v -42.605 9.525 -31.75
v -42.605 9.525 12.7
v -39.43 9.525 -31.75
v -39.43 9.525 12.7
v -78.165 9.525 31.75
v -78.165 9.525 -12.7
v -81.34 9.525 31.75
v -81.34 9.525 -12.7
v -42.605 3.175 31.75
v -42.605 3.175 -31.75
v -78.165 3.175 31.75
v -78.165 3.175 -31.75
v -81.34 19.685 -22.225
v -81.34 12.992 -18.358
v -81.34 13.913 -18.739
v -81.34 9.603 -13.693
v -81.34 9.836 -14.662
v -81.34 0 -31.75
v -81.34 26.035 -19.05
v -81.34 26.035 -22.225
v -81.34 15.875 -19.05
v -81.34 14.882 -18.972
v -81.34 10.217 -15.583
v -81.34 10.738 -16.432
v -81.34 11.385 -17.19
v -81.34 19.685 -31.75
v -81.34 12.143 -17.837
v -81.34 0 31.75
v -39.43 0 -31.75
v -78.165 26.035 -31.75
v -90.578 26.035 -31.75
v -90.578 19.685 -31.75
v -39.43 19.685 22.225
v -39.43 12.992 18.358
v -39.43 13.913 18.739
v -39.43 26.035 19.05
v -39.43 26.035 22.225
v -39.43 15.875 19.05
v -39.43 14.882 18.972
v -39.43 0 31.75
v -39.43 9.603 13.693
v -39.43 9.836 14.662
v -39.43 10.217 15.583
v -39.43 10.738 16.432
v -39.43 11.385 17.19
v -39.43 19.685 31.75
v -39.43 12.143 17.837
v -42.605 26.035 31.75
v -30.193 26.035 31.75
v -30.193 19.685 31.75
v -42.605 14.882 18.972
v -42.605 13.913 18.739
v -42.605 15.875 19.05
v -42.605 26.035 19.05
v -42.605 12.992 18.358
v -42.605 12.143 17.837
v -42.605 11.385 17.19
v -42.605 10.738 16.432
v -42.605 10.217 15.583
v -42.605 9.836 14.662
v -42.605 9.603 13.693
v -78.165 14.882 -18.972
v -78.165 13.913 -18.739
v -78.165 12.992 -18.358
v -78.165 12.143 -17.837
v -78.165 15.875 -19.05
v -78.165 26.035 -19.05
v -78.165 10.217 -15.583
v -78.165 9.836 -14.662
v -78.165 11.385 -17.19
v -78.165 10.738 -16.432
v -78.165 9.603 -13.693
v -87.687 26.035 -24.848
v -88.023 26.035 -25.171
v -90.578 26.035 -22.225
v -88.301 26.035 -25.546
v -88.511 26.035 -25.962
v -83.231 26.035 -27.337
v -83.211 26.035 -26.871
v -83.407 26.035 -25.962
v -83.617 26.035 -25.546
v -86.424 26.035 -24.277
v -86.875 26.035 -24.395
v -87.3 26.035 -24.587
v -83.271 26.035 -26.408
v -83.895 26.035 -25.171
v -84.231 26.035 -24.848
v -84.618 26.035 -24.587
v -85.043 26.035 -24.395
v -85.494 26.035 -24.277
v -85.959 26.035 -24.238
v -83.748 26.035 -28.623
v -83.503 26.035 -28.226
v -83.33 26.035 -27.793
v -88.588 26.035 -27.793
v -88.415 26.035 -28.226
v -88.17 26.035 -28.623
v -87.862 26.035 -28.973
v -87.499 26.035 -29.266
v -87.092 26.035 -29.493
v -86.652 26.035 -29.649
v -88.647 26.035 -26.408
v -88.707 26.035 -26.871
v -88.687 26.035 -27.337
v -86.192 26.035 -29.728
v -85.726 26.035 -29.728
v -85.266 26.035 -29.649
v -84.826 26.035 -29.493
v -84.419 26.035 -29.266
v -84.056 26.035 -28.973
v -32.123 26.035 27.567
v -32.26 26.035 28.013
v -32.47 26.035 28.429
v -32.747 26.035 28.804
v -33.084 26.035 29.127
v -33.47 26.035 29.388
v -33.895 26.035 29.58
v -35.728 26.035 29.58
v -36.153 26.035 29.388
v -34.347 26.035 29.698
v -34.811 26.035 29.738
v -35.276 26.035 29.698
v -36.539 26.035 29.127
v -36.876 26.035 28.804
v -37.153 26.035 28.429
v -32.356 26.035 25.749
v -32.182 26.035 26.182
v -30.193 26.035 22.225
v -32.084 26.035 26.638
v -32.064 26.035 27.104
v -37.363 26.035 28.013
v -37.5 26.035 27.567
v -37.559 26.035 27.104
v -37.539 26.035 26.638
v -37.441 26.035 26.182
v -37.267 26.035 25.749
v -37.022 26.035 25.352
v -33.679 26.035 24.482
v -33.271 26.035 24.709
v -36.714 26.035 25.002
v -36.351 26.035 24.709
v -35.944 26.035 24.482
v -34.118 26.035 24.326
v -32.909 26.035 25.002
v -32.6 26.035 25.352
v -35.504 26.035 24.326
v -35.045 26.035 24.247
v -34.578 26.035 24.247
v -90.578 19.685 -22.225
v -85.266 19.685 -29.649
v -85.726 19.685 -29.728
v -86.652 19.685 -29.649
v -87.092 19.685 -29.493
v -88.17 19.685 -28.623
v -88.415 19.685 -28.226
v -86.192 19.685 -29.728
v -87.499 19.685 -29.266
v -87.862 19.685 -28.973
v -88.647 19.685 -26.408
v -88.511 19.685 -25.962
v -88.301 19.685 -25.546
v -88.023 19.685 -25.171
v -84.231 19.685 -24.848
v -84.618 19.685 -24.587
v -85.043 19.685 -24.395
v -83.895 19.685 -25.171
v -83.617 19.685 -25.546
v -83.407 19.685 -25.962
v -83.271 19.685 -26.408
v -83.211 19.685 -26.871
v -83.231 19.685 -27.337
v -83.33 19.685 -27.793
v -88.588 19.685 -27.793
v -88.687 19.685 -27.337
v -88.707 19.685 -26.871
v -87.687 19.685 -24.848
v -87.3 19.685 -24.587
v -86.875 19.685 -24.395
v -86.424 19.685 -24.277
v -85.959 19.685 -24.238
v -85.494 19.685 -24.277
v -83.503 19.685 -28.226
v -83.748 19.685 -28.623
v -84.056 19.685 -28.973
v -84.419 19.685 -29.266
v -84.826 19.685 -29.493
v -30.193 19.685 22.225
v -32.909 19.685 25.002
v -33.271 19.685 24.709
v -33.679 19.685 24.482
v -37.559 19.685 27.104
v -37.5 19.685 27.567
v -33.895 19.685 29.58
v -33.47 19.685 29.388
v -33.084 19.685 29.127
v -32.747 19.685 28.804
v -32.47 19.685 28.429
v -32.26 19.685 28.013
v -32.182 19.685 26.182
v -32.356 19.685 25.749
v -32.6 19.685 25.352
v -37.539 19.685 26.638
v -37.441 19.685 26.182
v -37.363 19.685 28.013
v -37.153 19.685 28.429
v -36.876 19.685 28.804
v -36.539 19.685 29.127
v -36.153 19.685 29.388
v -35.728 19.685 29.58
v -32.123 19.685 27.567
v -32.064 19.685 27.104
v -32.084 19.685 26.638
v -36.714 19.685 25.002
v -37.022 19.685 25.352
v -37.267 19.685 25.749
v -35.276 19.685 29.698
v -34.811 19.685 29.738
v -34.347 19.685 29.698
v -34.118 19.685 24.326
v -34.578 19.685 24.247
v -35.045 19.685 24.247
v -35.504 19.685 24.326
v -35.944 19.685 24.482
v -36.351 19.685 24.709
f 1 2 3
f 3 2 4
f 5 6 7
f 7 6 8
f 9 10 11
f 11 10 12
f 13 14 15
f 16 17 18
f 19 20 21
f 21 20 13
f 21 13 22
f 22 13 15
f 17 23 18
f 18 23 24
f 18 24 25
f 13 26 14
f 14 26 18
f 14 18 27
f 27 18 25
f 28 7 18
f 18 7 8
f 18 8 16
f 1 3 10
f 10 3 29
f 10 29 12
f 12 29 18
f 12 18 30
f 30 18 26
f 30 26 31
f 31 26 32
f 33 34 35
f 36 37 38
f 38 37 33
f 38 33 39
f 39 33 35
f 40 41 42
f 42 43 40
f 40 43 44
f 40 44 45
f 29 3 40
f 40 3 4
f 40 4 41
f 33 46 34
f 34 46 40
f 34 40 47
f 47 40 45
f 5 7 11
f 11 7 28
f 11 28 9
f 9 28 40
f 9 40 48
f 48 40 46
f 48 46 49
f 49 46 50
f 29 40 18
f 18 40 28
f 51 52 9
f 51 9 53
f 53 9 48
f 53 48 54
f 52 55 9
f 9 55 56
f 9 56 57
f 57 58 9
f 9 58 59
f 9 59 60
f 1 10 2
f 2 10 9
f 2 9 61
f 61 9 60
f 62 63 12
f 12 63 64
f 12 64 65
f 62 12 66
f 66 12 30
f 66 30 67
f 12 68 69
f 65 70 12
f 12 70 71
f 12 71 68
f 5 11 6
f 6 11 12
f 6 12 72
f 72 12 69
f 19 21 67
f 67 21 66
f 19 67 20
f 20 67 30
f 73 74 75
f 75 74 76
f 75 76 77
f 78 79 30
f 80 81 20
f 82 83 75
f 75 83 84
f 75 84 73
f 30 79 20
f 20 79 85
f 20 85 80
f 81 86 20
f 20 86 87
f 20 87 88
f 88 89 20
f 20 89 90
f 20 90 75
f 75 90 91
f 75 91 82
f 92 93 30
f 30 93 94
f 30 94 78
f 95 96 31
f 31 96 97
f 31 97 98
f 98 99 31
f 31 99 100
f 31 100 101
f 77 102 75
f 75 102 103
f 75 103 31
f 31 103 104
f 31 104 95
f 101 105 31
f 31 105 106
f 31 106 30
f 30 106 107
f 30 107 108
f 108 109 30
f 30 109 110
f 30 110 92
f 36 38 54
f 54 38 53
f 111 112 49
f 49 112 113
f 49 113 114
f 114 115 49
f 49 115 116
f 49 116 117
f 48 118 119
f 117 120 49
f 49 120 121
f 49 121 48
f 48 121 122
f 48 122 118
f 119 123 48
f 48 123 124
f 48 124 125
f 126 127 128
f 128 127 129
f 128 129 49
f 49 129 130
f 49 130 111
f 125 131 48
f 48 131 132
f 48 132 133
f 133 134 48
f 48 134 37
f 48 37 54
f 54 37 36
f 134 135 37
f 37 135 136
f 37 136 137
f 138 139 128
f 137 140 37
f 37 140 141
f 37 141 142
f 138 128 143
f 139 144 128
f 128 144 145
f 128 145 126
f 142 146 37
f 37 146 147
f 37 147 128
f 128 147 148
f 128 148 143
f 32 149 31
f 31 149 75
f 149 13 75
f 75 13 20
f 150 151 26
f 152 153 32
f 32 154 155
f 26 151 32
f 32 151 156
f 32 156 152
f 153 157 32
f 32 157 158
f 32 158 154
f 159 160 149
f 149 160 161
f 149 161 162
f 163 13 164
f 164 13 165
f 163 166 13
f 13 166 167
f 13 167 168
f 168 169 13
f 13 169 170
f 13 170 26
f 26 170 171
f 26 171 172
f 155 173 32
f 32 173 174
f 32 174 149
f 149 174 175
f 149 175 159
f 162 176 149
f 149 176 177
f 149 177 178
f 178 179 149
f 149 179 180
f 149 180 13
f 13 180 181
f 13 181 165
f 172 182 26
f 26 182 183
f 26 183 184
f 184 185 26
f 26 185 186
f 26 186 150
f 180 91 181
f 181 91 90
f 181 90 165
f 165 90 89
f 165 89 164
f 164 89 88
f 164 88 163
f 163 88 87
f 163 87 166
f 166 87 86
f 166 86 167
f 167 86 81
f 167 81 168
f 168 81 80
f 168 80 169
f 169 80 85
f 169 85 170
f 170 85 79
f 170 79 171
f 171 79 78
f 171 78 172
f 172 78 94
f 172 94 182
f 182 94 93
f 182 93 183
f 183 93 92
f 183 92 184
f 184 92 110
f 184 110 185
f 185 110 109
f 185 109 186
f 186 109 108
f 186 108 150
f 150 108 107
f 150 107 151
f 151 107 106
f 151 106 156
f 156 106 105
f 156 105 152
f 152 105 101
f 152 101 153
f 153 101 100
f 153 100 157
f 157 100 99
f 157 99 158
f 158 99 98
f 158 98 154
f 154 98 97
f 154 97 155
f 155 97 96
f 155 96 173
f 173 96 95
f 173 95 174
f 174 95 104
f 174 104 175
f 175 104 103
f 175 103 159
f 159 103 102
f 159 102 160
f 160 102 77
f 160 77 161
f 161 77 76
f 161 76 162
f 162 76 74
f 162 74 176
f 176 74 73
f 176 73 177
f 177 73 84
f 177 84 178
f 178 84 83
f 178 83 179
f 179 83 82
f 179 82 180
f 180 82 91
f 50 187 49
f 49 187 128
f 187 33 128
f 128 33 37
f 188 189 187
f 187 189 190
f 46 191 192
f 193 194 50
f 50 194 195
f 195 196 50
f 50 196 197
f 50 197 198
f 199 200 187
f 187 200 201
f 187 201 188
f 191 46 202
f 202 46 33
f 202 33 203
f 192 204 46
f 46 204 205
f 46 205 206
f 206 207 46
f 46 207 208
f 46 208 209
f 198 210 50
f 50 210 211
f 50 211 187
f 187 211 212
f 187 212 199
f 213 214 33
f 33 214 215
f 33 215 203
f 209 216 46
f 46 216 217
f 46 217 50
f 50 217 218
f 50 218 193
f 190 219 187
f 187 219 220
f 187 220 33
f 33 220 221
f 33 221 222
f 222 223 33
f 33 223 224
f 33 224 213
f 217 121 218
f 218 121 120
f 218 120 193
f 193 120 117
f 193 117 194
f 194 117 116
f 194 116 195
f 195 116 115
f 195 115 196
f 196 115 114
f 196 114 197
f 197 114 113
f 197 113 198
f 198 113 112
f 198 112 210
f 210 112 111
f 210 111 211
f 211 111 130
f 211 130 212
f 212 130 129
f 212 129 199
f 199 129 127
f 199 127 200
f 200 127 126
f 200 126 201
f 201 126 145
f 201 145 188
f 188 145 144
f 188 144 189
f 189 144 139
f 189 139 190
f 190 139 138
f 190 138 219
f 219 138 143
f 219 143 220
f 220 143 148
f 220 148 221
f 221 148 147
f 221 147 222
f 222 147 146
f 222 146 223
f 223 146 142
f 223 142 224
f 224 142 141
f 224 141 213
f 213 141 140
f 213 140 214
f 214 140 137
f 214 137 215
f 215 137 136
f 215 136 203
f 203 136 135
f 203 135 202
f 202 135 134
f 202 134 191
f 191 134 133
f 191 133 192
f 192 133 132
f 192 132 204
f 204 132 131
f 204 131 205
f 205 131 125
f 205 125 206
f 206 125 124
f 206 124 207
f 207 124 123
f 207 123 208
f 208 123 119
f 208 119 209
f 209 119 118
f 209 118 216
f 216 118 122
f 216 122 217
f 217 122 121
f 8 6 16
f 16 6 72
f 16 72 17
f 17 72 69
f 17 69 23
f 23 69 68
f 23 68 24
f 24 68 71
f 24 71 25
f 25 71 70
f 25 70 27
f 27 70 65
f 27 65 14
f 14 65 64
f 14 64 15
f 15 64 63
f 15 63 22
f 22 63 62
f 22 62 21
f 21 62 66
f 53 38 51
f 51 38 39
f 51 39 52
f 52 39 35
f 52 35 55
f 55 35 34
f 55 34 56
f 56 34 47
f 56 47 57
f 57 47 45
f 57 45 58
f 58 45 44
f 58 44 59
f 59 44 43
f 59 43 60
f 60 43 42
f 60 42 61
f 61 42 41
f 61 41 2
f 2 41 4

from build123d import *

# Parameters (mm, degrees)
SKETCH1_W           = 41.91
SKETCH1_H           = 63.5
BOSS_EXTRUDE1_DEPTH = 3.175
SKETCH2_W           = 3.175
SKETCH2_H           = 63.5
BOSS_EXTRUDE2_DEPTH = 6.35
SKETCH5_W           = 3.175
SKETCH5_H           = 12.7
BOSS_EXTRUDE4_DEPTH = 16.51
SKETCH6_W           = 9.237604307
SKETCH6_H           = 9.525
SKETCH6_R           = 2.75
BOSS_EXTRUDE5_DEPTH = 6.35
FILLET2_R           = 6.35


with BuildPart() as part:
    # Sketch1 → Boss-Extrude1 (new body)
    with BuildSketch(Plane(origin=(0, 0, 0), x_dir=(1, 0, 0), z_dir=(0, 1, 0))):
        Rectangle(SKETCH1_W, SKETCH1_H)
    extrude(amount=BOSS_EXTRUDE1_DEPTH)

    # Sketch2 → Boss-Extrude2 (add)
    with BuildSketch(Plane(origin=(0, 3.175, 0), x_dir=(1, 0, 0), z_dir=(0, 1, 0))):
        with Locations((-19.3675, 0)):
            Rectangle(SKETCH2_W, SKETCH2_H)
        with Locations((19.3675, 0)):
            Rectangle(SKETCH2_W, SKETCH2_H)
    extrude(amount=BOSS_EXTRUDE2_DEPTH)

    # Sketch5 → Boss-Extrude4 (add)
    with BuildSketch(Plane(origin=(0, 9.525, 0), x_dir=(1, 0, 0), z_dir=(0, 1, 0))):
        with Locations((19.3675, 25.4)):
            Rectangle(SKETCH5_W, SKETCH5_H)
        with Locations((-19.3675, -25.4)):
            Rectangle(SKETCH5_W, SKETCH5_H)
    extrude(amount=BOSS_EXTRUDE4_DEPTH)

    # Sketch6 → Boss-Extrude5 (add)
    # profile 1 of 2: a face of its own
    with BuildSketch(Plane(origin=(0, 26.035, 0), x_dir=(1, 0, 0), z_dir=(0, 1, 0))):
        with Locations((-25.573802154, -26.9875)):
            Rectangle(SKETCH6_W, SKETCH6_H)
        with Locations(Location((-25.573802154, -26.9875, 0), (0, 0, 270))):
            Circle(SKETCH6_R, mode=Mode.SUBTRACT)
    # profile 2 of 2: a face of its own
    with BuildSketch(Plane(origin=(0, 26.035, 0), x_dir=(1, 0, 0), z_dir=(0, 1, 0))):
        with Locations((25.573802154, 26.9875)):
            Rectangle(SKETCH6_W, SKETCH6_H)
        with Locations(Location((25.573802154, 26.9875, 0), (0, 0, 270))):
            Circle(SKETCH6_R, mode=Mode.SUBTRACT)
    extrude(amount=-BOSS_EXTRUDE5_DEPTH)

    # Fillet2
    fillet2_edges = [part.edges().sort_by_distance(p)[0] for p in [
        (19.3675, 9.525, -19.05),
        (-19.3675, 9.525, 19.05),
    ]]
    fillet(fillet2_edges, radius=FILLET2_R)


with BuildPart() as body_2:
    # Mirror1: mirrored copy
    add(part.part.mirror(Plane(origin=(-30.192604307, 19.685, 31.75), x_dir=(0, 0, 1), z_dir=(-1, 0, 0))))


solid = body_2.part
